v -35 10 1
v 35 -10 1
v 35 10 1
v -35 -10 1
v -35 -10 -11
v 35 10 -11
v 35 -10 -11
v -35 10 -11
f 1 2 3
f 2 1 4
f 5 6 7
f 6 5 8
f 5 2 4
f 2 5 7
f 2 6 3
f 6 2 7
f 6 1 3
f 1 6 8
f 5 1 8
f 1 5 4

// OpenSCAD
// Define the dimensions of the rectangular block
length = 70;  // Adjusted length to match the original model proportions
width = 20;   // Width remains unchanged
height = 12;  // Adjusted height to match the original model proportions

// Adjust the position and orientation of the block
translate([0, 0, -5])  // Lowered the block to match the vertical position of the original model
rotate([0, 0, 0])      // Removed rotation to align the block horizontally
cube([length, width, height], center = true);
